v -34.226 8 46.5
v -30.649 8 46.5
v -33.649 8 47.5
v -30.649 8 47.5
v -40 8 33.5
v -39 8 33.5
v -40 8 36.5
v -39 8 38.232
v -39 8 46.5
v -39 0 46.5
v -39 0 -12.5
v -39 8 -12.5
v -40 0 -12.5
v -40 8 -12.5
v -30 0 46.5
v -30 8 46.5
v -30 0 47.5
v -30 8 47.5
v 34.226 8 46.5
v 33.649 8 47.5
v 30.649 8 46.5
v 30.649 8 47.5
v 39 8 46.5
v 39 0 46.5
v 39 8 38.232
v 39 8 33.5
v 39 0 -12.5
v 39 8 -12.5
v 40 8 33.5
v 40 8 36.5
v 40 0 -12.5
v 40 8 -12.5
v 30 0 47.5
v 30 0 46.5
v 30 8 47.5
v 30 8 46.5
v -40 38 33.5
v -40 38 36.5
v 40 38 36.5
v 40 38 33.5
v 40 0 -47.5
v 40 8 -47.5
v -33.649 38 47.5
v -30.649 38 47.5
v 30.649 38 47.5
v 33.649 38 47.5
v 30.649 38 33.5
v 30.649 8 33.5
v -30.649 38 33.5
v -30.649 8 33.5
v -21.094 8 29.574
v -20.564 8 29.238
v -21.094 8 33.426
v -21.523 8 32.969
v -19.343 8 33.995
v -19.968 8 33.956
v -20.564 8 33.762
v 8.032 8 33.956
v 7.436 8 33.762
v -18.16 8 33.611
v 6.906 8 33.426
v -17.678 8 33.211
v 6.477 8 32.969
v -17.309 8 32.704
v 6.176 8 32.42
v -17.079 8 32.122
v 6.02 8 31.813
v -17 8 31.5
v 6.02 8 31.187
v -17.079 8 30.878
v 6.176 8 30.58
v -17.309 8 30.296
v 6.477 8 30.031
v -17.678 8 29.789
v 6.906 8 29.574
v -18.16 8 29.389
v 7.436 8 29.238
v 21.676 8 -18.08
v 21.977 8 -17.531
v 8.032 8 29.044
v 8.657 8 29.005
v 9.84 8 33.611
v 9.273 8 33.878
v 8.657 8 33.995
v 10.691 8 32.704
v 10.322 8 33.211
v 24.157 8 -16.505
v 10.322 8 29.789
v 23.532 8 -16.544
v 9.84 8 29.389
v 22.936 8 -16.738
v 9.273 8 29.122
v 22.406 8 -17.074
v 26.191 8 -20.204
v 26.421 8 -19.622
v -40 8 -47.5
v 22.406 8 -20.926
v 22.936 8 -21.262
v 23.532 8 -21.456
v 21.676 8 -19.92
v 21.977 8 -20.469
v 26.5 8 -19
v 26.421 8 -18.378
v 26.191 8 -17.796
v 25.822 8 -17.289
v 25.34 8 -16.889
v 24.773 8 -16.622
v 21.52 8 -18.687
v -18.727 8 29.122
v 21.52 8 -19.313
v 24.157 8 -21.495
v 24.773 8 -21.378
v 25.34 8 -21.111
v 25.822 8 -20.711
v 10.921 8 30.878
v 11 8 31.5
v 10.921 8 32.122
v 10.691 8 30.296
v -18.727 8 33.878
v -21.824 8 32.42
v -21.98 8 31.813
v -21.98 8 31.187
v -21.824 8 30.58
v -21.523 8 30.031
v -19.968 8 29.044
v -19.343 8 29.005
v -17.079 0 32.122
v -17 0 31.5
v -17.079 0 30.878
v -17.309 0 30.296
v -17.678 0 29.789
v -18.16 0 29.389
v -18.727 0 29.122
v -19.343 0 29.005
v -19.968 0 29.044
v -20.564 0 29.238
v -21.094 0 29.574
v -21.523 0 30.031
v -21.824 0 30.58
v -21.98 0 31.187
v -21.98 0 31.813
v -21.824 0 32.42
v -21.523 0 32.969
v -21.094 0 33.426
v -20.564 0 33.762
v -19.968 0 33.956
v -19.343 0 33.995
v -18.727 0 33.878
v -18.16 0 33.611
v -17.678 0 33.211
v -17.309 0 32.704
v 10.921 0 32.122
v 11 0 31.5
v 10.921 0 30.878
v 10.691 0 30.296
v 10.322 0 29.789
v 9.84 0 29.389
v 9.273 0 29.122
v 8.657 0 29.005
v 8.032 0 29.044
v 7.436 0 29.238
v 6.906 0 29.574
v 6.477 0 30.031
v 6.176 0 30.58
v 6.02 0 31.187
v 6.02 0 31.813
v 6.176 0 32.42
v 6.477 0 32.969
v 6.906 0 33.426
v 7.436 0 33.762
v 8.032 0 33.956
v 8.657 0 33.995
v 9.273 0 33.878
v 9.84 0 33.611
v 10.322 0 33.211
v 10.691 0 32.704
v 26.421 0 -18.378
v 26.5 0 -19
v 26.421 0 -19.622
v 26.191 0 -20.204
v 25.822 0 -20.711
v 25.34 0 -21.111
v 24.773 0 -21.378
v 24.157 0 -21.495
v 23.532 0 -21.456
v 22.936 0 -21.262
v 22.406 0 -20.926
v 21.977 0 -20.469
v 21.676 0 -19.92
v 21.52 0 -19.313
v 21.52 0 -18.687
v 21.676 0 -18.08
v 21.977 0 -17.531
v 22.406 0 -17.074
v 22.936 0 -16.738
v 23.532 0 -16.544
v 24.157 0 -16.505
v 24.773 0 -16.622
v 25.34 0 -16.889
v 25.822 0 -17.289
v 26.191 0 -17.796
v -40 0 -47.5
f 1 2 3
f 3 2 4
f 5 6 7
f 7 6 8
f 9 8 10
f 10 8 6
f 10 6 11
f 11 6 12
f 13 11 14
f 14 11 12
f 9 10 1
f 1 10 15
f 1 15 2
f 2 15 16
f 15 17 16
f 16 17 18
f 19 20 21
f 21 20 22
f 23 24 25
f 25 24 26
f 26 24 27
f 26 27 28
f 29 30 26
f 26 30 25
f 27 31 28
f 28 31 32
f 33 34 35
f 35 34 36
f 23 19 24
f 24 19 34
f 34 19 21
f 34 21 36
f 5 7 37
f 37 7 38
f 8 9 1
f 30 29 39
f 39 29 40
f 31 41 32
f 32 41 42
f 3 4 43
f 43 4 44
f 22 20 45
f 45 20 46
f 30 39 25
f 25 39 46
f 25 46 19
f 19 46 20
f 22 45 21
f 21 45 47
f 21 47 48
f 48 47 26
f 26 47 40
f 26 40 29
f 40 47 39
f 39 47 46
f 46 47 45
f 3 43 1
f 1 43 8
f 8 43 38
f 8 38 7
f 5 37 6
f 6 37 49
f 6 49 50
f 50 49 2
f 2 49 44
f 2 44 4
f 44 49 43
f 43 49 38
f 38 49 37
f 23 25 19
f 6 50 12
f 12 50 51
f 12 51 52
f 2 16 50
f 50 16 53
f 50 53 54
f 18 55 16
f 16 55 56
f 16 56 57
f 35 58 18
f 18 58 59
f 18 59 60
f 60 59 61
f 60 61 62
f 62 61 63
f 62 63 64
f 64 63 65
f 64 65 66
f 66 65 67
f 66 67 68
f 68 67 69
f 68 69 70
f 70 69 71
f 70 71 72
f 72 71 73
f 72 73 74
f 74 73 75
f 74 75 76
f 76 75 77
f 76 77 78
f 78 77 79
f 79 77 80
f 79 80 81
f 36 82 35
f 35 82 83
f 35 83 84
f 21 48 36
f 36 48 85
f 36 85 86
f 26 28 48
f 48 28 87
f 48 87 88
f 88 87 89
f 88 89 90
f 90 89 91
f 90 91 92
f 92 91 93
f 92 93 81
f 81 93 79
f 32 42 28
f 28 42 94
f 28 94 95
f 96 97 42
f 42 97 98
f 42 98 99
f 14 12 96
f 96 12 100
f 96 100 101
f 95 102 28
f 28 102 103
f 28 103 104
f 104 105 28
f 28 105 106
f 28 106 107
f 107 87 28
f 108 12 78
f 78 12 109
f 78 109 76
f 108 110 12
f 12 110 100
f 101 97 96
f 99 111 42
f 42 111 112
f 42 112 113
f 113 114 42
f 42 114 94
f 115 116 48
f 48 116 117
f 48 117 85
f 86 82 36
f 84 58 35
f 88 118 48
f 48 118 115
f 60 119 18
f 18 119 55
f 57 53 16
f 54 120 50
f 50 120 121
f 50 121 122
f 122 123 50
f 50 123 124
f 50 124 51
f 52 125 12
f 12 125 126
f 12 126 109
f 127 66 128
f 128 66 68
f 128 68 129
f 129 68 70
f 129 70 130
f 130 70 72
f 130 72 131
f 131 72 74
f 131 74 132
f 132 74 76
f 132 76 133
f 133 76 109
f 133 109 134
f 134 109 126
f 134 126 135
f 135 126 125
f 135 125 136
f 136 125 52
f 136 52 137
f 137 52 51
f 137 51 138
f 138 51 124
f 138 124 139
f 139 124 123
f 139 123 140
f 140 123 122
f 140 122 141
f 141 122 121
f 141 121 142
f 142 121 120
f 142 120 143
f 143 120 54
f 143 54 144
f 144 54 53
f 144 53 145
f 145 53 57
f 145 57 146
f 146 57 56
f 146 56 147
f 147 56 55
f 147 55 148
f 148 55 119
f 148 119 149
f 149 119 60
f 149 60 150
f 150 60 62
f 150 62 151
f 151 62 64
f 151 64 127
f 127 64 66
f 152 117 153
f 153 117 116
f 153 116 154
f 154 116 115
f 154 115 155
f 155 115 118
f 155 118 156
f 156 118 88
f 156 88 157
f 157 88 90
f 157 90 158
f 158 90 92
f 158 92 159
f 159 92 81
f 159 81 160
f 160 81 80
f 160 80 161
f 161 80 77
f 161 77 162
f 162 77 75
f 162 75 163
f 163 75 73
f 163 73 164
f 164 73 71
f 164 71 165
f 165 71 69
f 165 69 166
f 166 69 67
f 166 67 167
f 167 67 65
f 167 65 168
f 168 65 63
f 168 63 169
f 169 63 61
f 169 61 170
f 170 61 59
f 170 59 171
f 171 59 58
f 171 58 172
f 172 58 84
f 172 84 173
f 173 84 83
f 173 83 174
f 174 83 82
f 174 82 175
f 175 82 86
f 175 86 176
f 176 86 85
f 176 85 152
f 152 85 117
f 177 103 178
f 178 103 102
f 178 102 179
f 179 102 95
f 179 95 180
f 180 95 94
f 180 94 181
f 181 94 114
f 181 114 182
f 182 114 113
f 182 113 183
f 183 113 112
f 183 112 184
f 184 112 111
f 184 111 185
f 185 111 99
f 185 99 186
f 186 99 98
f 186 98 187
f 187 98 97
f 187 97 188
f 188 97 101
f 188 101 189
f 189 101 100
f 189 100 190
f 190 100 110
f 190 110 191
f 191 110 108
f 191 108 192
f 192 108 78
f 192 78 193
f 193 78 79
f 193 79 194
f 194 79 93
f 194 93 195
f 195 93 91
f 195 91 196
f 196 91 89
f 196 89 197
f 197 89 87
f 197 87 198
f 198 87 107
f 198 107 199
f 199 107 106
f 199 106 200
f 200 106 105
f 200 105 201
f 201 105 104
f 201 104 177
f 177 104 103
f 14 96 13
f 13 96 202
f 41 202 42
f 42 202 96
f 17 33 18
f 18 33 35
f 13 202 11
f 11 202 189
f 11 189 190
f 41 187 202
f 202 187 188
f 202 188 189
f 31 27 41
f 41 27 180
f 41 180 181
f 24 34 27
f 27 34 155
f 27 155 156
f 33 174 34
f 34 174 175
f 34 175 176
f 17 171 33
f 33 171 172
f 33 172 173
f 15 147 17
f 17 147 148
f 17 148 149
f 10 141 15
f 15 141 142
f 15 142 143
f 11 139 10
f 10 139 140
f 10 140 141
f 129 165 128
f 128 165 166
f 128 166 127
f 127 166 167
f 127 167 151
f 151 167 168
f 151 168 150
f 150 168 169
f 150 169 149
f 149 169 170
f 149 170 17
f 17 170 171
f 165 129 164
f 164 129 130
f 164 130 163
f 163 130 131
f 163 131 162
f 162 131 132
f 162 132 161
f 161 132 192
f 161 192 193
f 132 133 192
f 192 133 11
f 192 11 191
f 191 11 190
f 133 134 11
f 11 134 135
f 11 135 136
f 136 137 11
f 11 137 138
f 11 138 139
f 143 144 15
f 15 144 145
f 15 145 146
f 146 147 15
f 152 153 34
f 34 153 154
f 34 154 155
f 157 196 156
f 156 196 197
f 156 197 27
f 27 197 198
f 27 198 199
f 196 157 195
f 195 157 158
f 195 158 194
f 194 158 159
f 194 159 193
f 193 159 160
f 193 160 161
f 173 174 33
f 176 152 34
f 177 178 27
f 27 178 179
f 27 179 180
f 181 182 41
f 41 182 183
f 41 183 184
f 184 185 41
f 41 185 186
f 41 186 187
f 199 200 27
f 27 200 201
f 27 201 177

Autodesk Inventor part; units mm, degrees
ref_plane "YZ Plane" through (0, 0, 0) normal (1, 0, 0) x (0, 1, 0)
ref_plane "XZ Plane" through (0, 0, 0) normal (0, 1, 0) x (-1, 0, 0)
ref_plane "XY Plane" through (0, 0, 0) normal (0, 0, 1) x (1, 0, 0)
sketch "Sketch1" plane through (0, 0, 0) normal (0, 1, 0) x (-1, 0, 0)
  line L0 (40, 47.5) -> (-40, 47.5)
  line L1 (-40, 47.5) -> (-40, -47.5)
  line L2 (-40, -47.5) -> (40, -47.5)
  line L3 (40, -47.5) -> (40, 47.5)
  line L4 (40, 47.5) -> (-40, -47.5) construction
  line L5 (-40, 47.5) -> (40, -47.5) construction
  point P0 (0, 0)
  dimension "d0" = 80
  dimension "d1" = 95
extrude "Extrusion1" add sketch "Sketch1" along normal blind 8
sketch "Sketch2" plane through (0, 8, 0) normal (0, 1, 0) x (1, 0, 0)
  line L0 (0, 0) -> (0, 19)
  line L1 (0, 19) -> (24, 19)
  line L2 (0, 0) -> (0, -31.5)
  line L3 (0, -31.5) -> (-19.5, -31.5)
  line L4 (0, -31.5) -> (8.5, -31.5)
  circle A0 centre (8.5, -31.5) radius 2.5
  circle A1 centre (-19.5, -31.5) radius 2.5
  circle A2 centre (24, 19) radius 2.5
  dimension "d4" = 19
  dimension "d5" = 24
  dimension "d6" = 31.5
  dimension "d7" = 19.5
  dimension "d8" = 8.5
  dimension "d9" = 5
  dimension "d10" = 5
  dimension "d11" = 5
extrude "Extrusion2" cut sketch "Sketch2" against normal blind 8
sketch "Sketch4" plane through (0, 8, 0) normal (0, 1, 0) x (1, 0, 0)
  line L0 (-40, -47.5) -> (40, -47.5) projected
  line L1 (-40, -47.5) -> (-40, -36.5)
  line L2 (-40, -36.5) -> (-33.6491, -47.5)
  line L3 (-33.6491, -47.5) -> (-30.6491, -47.5)
  line L4 (-30.6491, -47.5) -> (-30.6491, -33.5)
  line L5 (-30.6491, -33.5) -> (-40, -33.5)
  line L6 (-40, 47.5) -> (-40, -47.5) projected
  line L7 (-40, -36.5) -> (-40, -33.5)
  line L8 (0, -20.8898) -> (0, -30.7247)
  line L9 (40, -47.5) -> (40, -36.5)
  line L10 (40, -36.5) -> (33.6491, -47.5)
  line L11 (33.6491, -47.5) -> (30.6491, -47.5)
  line L12 (30.6491, -47.5) -> (30.6491, -33.5)
  line L13 (30.6491, -33.5) -> (40, -33.5)
  line L14 (40, -36.5) -> (40, -33.5)
  point P0 (0, 0)
  point P1 (-32.5008, -49.4891)
  point P2 (32.5008, -49.4891)
  dimension "d14" = 11
  dimension "d15" = 30
  dimension "d16" = 3
  dimension "d17" = 14
extrude "Extrusion3" add sketch "Sketch4" along normal blind 30 contours L12 L13 L14 L10 L0 | L2 L6 L5 L4 L0
sketch "Sketch5" plane through (0, 0, 0) normal (0, -1, 0) x (1, 0, 0)
  circle A0 centre (-19.5, 31.5) radius 2.5 projected
  circle A1 centre (8.5, 31.5) radius 2.5 projected
  circle A2 centre (24, -19) radius 2.5 projected
  line L0 (-40, 47.5) -> (40, 47.5) projected
  line L1 (-40, -47.5) -> (-40, 47.5) projected
  line L2 (40, -47.5) -> (-40, -47.5) projected
  line L3 (40, 47.5) -> (40, -47.5) projected
  line L4 (40, 47.5) -> (40, -12.5)
  line L5 (40, -12.5) -> (39, -12.5)
  line L6 (39, -12.5) -> (39, 47.5)
  line L7 (33.6491, 47.5) -> (40, 47.5) projected
  line L8 (40, 47.5) -> (39, 47.5)
  line L9 (40, 47.5) -> (40, 46.5)
  line L10 (40, 47.5) -> (40, 36.5) projected
  line L11 (40, 46.5) -> (30, 46.5)
  line L12 (30, 46.5) -> (30, 47.5)
  line L13 (40, 47.5) -> (30, 47.5)
  line L14 (-30.6491, 47.5) -> (30.6491, 47.5) projected
  line L15 (0, 47.5) -> (0, 0)
  line L16 (-40, 47.5) -> (-40, -12.5)
  line L17 (-40, -12.5) -> (-39, -12.5)
  line L18 (-39, -12.5) -> (-39, 47.5)
  line L19 (-33.6491, 47.5) -> (-40, 47.5)
  line L20 (-40, 47.5) -> (-39, 47.5)
  line L21 (-40, 47.5) -> (-40, 46.5)
  line L22 (-40, 47.5) -> (-40, 36.5)
  line L23 (-40, 46.5) -> (-30, 46.5)
  line L24 (-30, 46.5) -> (-30, 47.5)
  line L25 (-40, 47.5) -> (-30, 47.5)
  dimension "d20" = 60
  dimension "d21" = 1
  dimension "d22" = 1
  dimension "d23" = 10
extrude "Extrusion4" cut sketch "Sketch5" against normal blind 8 contours L0 L18 L23 L1 | L0 L24 L23 L18 | L23 L18 L17 L1 | L0 L6 L11 L12 | L5 L6 L11 L3 | L6 L0 L3 L11
properties part number "Base"
